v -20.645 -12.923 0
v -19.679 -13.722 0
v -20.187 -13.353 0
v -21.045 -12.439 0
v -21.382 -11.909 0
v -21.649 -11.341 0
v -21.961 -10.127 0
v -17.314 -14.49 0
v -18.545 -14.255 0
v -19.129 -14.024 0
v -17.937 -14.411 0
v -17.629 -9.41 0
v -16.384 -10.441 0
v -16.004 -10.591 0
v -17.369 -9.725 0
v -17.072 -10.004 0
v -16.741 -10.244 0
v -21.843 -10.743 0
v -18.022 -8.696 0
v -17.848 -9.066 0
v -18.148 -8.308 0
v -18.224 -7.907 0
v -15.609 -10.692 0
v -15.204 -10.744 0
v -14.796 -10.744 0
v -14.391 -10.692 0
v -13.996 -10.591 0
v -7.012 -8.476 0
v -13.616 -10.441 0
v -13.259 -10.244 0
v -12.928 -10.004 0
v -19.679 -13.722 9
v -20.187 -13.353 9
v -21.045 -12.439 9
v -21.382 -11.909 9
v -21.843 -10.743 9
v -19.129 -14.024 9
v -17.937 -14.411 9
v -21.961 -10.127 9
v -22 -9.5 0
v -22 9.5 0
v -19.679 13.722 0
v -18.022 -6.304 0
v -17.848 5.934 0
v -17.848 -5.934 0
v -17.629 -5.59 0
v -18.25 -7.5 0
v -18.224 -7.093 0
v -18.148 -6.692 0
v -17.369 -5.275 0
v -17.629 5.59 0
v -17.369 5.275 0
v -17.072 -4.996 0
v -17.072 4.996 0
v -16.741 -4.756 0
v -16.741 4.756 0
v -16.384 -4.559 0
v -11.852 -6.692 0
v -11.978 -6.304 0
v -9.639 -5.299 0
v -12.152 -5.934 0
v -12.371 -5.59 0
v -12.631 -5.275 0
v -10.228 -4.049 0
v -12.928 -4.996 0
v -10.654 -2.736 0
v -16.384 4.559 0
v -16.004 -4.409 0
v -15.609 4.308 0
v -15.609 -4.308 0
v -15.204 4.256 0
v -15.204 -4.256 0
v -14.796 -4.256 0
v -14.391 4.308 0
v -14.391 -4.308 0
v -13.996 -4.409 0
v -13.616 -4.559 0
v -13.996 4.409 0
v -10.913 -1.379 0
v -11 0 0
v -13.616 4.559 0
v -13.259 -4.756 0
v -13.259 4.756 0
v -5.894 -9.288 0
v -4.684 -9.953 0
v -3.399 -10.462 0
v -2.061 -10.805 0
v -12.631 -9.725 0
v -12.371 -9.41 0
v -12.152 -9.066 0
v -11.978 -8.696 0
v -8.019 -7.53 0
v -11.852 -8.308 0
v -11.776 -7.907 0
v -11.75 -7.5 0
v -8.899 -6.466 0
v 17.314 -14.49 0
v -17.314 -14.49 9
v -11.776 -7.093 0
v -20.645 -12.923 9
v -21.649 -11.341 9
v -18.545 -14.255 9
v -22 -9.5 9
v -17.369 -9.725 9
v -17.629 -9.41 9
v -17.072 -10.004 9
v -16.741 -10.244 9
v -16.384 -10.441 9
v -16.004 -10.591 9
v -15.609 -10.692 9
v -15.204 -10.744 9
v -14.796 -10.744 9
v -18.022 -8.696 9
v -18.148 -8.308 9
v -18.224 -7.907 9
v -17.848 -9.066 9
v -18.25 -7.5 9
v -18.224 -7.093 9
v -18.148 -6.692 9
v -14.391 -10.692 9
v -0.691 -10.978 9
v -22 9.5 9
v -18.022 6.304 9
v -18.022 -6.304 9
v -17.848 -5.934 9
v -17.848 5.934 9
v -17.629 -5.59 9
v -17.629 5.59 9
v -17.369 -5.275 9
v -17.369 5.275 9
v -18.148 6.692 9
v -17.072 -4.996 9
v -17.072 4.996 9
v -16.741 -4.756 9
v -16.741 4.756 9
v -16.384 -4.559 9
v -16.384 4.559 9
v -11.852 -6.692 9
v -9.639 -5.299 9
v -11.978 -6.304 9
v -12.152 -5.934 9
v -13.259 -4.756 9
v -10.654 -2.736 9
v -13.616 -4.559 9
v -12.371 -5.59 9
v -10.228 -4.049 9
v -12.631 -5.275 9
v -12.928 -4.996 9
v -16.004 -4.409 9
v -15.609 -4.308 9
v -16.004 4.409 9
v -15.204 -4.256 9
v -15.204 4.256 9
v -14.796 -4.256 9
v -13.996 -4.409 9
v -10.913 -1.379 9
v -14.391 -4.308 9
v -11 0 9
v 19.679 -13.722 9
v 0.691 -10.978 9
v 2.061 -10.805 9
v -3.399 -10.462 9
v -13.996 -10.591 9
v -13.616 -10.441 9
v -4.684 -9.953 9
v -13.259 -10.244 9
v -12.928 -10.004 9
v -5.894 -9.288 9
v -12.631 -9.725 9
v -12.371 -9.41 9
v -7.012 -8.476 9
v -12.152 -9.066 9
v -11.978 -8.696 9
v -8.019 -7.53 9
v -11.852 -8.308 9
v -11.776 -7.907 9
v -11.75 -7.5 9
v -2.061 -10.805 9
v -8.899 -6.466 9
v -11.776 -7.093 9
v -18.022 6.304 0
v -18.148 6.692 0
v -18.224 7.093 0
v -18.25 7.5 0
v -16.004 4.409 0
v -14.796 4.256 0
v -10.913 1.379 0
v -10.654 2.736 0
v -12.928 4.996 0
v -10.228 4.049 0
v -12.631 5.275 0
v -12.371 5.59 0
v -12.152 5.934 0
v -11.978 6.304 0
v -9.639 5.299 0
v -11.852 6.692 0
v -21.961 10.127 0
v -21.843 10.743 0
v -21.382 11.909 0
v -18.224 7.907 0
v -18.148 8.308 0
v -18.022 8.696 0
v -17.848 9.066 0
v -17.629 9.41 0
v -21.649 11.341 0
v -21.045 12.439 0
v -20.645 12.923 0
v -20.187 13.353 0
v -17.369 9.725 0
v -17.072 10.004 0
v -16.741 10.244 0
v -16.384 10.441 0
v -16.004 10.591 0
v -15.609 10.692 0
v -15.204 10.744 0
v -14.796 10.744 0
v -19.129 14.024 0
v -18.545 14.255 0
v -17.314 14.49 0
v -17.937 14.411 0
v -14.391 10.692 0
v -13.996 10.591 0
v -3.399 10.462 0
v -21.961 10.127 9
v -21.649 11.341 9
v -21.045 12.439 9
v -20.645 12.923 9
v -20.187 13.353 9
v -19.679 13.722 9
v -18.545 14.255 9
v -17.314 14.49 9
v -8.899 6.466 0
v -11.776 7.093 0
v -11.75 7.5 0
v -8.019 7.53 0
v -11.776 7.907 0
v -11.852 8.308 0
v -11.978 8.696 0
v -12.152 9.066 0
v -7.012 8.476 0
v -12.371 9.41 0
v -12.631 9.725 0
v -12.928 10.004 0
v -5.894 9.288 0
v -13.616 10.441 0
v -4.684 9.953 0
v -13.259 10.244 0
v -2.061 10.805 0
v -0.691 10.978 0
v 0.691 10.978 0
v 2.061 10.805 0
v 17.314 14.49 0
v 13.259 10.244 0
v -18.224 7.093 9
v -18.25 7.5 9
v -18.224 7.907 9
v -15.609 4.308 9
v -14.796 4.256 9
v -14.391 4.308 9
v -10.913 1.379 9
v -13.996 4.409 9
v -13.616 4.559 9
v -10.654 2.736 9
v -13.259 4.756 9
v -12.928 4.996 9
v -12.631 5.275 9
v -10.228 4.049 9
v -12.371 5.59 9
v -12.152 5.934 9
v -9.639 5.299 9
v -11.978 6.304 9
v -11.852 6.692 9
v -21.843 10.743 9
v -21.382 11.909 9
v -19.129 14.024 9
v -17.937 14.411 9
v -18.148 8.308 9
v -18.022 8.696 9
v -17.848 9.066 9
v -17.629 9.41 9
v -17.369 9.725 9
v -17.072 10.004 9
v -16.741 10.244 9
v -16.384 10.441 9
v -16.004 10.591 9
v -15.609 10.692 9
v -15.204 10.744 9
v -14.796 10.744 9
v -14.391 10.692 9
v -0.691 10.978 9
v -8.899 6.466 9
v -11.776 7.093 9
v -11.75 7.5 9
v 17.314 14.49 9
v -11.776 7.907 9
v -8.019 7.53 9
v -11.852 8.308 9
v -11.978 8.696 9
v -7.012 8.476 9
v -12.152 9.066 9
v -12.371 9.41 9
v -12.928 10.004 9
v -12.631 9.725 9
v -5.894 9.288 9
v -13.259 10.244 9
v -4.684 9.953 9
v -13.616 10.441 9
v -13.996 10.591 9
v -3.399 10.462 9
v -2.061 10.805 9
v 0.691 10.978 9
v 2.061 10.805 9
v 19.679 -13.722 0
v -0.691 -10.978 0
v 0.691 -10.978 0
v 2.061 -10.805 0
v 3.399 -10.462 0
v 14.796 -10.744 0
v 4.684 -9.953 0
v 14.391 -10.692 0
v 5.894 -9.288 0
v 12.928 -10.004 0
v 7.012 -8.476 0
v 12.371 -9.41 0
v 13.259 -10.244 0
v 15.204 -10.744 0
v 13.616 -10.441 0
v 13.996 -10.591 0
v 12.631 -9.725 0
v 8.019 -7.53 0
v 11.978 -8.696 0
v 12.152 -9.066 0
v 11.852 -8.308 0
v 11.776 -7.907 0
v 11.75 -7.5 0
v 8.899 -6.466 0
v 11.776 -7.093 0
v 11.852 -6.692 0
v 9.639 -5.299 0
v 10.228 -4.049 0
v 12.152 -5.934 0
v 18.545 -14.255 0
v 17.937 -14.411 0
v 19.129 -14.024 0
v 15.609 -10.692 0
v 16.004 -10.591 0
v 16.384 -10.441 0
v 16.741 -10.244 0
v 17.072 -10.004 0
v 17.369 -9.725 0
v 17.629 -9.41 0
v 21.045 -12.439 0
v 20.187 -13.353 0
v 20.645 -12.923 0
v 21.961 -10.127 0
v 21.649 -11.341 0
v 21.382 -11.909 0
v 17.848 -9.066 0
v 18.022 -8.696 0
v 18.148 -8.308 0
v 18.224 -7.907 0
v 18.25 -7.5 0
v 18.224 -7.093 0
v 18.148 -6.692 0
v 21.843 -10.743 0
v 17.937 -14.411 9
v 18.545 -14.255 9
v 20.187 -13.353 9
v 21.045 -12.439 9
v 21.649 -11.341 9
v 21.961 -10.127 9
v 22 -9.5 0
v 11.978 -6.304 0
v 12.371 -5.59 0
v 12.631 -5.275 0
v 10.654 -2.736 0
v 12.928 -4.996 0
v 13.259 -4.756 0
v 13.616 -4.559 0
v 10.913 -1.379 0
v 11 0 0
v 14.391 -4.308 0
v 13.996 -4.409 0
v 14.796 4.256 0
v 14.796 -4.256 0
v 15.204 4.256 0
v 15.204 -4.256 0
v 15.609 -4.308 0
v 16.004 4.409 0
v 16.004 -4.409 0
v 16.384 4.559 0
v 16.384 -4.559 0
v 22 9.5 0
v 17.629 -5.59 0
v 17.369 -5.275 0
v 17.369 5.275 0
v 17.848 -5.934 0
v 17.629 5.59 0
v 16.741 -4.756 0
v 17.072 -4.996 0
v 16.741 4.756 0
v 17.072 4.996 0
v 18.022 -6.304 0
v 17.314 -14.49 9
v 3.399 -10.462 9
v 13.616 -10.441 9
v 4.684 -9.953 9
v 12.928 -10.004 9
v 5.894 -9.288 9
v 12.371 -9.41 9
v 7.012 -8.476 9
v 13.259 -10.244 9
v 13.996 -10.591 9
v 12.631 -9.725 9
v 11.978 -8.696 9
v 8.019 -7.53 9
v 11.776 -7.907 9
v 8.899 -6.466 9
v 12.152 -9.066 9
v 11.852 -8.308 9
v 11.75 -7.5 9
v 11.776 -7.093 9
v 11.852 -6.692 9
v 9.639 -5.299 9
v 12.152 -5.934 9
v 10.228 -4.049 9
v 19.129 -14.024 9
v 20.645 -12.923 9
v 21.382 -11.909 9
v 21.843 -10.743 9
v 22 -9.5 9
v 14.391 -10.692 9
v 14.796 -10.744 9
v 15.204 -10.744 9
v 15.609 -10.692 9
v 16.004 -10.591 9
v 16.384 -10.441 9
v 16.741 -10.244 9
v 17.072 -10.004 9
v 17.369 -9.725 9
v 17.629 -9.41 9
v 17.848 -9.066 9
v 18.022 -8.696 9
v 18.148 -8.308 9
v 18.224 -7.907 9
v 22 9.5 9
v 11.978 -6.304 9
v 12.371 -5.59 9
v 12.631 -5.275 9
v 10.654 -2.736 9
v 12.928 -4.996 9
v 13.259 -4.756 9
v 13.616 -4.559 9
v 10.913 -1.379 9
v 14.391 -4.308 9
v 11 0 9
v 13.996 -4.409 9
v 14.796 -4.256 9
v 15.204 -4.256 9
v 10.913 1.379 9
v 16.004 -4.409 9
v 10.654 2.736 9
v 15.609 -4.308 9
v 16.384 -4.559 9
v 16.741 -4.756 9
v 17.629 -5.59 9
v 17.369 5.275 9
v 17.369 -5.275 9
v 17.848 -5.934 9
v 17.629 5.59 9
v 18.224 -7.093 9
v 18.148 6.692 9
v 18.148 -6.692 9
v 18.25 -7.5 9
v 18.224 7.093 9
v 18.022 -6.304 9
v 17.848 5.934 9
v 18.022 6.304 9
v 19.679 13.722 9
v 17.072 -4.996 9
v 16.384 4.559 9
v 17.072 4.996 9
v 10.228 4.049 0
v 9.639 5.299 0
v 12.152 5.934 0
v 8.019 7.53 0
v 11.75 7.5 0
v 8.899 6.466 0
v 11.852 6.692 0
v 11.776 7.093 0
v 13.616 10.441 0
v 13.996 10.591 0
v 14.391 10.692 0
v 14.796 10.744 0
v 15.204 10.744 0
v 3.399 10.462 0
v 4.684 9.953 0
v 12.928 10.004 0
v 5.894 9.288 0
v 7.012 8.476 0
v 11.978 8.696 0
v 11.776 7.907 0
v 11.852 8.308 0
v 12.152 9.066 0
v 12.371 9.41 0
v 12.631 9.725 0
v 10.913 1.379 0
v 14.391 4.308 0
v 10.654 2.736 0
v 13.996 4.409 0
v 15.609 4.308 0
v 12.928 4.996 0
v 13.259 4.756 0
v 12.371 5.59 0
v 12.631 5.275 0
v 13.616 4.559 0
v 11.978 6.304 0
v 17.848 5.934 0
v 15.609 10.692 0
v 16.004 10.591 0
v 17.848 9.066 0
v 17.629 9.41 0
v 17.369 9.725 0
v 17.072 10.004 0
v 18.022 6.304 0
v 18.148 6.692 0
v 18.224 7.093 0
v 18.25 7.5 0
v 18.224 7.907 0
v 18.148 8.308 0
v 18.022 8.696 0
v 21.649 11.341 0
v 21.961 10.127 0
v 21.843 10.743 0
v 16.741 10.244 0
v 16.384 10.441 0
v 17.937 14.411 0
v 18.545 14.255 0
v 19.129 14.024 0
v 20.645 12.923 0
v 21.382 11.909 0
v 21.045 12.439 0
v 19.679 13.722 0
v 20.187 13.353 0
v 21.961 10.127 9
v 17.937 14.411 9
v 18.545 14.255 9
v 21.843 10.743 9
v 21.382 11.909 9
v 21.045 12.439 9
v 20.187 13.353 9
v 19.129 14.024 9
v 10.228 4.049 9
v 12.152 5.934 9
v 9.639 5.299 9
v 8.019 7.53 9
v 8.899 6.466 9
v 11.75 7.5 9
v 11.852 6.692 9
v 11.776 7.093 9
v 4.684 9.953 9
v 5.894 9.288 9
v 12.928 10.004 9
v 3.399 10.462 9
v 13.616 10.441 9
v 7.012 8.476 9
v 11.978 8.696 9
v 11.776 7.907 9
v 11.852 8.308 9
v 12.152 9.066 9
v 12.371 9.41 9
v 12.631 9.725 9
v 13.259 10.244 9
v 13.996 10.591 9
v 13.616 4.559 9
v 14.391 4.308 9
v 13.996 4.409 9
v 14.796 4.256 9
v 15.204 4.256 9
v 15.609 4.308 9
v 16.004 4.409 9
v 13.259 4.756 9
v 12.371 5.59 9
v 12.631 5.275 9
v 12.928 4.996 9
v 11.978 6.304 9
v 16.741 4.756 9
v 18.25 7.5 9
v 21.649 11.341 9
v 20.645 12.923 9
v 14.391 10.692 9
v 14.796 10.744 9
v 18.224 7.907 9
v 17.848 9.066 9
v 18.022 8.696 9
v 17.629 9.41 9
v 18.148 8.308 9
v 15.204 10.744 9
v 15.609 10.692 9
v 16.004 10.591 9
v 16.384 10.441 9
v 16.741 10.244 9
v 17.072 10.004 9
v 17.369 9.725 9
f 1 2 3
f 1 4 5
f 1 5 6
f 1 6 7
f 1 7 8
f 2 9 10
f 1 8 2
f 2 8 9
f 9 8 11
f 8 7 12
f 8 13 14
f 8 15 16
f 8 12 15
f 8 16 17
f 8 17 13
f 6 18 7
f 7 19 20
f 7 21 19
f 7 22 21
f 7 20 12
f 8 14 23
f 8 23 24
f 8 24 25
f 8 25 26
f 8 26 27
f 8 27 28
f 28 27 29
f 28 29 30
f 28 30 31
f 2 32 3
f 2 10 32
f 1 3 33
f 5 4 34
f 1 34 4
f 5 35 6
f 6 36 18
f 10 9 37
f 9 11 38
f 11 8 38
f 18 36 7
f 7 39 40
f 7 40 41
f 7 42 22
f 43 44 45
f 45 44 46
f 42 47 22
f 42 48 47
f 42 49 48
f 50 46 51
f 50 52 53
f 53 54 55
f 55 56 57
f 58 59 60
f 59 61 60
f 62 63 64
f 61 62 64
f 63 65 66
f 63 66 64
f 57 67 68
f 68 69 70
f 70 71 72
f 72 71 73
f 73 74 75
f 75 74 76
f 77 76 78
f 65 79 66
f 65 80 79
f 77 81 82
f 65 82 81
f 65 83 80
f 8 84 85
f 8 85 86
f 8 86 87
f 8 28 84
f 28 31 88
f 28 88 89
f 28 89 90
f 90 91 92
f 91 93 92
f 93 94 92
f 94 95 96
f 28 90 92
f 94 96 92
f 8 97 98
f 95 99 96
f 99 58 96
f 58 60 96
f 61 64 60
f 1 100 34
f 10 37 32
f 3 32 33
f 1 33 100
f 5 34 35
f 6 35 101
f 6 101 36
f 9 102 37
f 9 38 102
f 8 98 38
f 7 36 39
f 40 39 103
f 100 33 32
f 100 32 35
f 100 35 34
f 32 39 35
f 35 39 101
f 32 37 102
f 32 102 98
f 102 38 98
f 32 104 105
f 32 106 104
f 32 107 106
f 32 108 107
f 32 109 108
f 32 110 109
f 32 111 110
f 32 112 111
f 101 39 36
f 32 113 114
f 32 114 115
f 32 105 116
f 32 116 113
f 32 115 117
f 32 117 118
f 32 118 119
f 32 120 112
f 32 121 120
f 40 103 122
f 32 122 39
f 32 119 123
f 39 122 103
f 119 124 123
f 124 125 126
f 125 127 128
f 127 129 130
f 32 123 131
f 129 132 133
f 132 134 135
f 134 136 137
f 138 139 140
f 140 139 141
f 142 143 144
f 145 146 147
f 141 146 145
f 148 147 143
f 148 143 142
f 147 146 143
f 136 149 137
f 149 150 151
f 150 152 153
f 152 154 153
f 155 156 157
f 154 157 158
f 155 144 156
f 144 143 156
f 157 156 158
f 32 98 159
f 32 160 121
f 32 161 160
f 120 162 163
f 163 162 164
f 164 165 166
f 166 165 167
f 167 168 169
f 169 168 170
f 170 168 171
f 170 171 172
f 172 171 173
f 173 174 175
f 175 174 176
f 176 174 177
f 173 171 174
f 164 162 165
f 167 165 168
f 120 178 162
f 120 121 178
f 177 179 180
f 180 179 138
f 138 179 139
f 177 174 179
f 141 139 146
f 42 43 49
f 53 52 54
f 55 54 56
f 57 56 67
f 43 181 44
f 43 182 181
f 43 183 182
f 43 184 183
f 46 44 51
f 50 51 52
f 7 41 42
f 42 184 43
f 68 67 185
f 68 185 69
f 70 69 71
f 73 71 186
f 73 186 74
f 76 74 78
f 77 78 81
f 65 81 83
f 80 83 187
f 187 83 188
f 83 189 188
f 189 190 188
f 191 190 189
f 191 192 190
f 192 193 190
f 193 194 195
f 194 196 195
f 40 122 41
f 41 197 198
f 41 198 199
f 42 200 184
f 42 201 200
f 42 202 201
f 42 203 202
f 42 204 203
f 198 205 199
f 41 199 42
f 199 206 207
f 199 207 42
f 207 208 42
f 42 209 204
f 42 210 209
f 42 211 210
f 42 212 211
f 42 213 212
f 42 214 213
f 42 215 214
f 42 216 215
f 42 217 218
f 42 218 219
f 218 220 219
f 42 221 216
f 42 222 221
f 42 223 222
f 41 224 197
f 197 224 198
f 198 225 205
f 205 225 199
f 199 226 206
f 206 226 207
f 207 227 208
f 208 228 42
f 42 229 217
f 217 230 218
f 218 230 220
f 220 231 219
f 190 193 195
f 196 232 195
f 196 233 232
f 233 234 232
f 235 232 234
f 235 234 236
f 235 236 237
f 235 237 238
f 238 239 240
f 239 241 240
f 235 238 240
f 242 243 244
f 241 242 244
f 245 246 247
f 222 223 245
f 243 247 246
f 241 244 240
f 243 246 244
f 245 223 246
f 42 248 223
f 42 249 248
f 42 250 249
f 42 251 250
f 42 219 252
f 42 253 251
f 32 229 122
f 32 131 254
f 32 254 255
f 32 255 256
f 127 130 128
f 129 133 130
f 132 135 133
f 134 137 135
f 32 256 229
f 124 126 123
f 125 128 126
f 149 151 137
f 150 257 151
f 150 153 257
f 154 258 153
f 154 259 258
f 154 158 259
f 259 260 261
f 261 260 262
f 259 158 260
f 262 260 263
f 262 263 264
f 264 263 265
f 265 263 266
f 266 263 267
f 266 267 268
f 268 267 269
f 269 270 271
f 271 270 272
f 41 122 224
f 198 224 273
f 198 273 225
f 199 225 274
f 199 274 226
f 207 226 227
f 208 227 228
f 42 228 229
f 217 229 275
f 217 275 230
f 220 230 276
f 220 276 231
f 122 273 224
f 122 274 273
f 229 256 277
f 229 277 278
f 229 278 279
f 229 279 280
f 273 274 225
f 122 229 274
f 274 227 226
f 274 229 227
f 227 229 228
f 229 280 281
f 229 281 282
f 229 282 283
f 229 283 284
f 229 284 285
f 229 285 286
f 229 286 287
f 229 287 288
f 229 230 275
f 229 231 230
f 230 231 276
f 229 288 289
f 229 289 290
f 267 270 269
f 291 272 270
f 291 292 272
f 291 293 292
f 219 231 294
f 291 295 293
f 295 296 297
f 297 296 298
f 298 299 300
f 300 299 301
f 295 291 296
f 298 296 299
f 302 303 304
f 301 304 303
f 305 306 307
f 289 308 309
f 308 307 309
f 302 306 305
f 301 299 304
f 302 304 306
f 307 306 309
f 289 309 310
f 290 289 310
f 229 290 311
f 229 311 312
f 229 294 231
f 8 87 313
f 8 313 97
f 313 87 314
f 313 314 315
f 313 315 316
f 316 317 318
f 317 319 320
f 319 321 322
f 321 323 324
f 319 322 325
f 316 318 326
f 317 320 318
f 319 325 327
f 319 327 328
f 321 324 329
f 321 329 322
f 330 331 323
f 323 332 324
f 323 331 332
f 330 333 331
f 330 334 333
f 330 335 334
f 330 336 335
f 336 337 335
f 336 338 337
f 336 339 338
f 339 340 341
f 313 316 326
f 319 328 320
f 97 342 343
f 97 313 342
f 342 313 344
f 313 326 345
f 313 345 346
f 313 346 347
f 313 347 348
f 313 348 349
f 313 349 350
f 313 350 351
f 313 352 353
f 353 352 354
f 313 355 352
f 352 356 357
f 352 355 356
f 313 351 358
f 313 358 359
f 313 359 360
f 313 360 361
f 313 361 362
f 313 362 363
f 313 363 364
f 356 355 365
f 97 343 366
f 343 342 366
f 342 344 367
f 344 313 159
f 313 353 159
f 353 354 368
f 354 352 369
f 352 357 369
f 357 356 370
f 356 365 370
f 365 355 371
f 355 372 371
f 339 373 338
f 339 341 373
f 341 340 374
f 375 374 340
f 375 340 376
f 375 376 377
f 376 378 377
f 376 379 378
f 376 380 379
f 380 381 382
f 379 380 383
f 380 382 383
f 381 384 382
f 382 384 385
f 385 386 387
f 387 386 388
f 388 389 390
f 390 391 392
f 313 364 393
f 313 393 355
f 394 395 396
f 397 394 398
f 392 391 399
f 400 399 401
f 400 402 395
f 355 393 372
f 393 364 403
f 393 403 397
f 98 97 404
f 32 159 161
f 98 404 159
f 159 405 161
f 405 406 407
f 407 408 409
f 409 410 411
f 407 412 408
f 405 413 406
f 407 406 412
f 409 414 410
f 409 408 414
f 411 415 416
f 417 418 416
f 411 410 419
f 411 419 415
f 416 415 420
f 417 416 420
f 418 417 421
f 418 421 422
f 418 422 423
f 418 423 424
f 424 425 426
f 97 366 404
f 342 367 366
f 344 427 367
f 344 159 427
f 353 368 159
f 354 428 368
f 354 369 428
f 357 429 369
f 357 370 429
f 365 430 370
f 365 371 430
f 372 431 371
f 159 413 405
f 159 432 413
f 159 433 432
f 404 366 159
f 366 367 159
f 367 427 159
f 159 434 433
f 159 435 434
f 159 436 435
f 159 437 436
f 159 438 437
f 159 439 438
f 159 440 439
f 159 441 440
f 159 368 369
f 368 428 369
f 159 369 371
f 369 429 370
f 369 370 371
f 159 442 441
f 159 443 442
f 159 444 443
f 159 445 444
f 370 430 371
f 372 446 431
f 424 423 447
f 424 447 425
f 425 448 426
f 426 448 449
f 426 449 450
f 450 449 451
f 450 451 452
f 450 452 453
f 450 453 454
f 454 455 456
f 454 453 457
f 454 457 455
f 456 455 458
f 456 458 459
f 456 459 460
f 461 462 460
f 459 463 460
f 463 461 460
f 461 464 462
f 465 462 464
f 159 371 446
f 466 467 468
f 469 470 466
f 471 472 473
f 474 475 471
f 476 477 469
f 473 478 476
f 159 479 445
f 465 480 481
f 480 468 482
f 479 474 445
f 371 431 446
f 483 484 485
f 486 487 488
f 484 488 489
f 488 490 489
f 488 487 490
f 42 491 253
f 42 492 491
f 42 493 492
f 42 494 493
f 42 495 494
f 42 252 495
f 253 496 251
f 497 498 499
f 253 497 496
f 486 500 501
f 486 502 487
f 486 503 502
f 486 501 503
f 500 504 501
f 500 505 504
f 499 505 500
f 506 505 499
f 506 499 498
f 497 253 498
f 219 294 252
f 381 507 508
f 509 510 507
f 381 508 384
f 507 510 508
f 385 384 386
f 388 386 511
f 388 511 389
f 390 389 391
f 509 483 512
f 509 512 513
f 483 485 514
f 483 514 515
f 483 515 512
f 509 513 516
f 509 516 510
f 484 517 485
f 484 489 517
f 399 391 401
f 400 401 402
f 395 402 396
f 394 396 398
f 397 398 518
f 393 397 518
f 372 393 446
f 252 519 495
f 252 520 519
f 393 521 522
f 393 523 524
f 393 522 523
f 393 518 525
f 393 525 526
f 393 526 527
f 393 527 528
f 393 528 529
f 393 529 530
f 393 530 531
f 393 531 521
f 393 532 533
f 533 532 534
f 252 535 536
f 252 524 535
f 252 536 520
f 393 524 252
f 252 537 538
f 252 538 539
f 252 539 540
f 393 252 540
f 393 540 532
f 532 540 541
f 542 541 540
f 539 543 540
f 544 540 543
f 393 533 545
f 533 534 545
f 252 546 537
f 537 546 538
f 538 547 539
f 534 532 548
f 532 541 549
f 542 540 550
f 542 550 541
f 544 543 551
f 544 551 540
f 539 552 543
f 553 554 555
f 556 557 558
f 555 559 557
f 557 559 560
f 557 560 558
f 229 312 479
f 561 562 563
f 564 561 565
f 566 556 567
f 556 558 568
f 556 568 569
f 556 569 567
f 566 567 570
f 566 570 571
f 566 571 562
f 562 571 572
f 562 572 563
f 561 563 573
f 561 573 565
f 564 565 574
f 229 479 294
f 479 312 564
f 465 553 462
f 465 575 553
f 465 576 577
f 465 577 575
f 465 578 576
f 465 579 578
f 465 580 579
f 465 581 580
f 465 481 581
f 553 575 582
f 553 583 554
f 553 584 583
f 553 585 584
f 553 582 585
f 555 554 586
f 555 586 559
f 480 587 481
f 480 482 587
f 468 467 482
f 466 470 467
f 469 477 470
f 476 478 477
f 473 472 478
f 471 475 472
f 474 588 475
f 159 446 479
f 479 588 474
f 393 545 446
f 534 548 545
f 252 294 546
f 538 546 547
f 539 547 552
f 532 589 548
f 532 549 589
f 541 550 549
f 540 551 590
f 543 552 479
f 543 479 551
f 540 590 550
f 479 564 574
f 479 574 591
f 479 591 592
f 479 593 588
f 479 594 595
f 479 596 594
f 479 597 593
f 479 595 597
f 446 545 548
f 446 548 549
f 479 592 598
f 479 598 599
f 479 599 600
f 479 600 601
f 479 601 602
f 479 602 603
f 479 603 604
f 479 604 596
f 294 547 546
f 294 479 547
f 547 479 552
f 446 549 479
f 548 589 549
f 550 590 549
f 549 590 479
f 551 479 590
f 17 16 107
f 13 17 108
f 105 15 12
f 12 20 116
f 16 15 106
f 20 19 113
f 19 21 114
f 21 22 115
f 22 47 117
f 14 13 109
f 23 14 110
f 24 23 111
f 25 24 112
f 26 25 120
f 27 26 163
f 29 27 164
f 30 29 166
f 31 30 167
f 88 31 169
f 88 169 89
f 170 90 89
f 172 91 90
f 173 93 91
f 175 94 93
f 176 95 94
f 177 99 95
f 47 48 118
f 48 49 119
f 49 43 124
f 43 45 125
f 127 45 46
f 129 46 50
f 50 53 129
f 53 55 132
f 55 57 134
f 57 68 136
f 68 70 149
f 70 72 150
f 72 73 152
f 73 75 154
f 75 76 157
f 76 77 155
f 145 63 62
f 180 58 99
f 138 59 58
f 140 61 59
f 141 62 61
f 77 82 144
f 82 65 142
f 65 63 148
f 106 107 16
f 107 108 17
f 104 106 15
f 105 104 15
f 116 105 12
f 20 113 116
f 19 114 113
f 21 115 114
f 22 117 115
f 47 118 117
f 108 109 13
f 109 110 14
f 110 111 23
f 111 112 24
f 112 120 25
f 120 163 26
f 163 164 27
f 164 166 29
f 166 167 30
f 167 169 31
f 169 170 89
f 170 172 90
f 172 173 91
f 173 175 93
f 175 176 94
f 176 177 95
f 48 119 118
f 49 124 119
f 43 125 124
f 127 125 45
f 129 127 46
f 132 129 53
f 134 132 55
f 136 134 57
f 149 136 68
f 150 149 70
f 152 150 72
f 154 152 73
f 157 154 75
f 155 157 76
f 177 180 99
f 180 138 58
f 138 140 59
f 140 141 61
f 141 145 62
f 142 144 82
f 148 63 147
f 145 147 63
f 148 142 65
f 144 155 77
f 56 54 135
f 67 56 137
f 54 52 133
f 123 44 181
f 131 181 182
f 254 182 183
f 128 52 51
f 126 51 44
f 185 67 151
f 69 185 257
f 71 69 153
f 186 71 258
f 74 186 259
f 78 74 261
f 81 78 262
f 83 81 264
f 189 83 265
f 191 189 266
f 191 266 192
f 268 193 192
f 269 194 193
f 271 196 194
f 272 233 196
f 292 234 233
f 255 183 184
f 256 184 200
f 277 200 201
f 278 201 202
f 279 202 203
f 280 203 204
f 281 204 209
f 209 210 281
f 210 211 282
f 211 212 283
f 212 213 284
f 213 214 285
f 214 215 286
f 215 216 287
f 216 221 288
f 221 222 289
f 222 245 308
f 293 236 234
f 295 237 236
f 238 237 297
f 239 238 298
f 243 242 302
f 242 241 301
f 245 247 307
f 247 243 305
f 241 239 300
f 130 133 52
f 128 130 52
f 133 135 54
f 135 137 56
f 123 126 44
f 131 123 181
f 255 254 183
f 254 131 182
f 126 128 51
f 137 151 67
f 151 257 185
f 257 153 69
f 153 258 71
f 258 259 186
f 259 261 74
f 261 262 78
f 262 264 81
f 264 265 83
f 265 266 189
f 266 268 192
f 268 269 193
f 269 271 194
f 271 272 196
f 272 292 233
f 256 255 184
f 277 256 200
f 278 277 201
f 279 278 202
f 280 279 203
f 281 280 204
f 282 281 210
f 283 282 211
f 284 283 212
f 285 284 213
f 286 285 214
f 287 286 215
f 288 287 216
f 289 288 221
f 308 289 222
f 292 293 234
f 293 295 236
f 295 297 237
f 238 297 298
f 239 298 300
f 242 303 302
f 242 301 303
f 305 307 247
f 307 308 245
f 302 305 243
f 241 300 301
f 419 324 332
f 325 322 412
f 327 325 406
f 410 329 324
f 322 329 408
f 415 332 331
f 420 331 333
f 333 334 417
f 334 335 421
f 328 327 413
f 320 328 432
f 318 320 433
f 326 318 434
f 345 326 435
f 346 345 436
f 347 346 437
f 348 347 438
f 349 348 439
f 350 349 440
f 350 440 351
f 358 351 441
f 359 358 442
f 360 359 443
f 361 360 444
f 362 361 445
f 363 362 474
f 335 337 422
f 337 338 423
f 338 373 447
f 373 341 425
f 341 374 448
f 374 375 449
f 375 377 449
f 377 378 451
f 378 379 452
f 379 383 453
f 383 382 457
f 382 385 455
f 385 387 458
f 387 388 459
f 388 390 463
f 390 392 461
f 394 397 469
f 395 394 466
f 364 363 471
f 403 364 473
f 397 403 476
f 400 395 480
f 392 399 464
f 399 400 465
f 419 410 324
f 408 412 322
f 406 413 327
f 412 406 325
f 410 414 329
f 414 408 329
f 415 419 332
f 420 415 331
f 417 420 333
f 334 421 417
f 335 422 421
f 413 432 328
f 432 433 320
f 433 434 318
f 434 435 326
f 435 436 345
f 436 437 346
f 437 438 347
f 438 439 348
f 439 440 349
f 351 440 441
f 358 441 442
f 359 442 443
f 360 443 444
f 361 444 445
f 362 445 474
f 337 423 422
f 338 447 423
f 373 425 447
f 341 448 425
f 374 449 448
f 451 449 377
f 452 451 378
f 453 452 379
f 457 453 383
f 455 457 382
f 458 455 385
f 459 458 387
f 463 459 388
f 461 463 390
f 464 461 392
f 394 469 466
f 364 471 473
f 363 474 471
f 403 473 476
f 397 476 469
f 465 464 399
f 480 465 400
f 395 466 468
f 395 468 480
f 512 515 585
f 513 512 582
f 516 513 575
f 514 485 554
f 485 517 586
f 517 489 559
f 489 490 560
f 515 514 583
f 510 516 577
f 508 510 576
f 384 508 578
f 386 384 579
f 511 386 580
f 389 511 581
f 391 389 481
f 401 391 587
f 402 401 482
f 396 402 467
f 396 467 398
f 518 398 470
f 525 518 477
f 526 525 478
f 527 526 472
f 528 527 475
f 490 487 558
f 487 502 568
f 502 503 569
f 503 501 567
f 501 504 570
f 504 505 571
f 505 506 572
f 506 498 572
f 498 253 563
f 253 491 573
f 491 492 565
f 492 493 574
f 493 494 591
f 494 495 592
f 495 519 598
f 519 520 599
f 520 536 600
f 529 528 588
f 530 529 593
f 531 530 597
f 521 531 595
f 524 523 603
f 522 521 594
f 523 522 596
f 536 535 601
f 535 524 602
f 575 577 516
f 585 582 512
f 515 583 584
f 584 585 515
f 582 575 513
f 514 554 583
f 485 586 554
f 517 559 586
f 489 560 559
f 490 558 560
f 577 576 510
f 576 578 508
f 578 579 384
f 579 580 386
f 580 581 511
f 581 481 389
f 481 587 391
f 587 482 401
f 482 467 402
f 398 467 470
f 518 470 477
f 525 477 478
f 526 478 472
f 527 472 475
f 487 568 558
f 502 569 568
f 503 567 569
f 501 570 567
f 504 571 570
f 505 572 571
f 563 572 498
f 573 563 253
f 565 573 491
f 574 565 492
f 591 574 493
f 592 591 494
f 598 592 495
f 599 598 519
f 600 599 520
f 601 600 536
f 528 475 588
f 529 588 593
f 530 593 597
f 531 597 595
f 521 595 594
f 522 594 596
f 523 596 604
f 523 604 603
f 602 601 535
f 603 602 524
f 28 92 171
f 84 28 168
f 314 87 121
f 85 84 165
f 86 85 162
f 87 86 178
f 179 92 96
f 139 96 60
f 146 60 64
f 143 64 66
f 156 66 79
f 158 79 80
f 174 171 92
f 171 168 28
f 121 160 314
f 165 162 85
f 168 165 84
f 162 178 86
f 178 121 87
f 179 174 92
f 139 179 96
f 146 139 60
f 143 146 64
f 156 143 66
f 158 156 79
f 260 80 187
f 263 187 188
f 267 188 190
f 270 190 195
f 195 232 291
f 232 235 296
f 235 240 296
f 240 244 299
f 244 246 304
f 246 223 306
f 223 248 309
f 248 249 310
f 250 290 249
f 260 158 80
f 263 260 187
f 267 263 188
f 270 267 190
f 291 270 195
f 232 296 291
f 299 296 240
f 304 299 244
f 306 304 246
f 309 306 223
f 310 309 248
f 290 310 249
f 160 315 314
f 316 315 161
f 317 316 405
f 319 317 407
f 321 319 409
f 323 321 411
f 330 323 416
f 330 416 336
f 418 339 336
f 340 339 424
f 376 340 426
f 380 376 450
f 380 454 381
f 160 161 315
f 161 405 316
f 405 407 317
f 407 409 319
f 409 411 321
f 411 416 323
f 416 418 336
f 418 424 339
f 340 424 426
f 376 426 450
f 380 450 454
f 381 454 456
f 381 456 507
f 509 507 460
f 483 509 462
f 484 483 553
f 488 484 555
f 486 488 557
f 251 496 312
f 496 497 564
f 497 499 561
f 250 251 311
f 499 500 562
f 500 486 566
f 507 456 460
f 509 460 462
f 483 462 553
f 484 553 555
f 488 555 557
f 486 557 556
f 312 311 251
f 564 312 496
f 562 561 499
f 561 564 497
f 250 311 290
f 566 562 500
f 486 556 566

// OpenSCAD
$fn = 50;

difference() {
	union() {
		hull() {
			translate(v = [-17.0, 9.5, 0]) {
				cylinder(h = 9, r = 5);
			}
			translate(v = [17.0, 9.5, 0]) {
				cylinder(h = 9, r = 5);
			}
			translate(v = [-17.0, -9.5, 0]) {
				cylinder(h = 9, r = 5);
			}
			translate(v = [17.0, -9.5, 0]) {
				cylinder(h = 9, r = 5);
			}
		}
	}
	union() {
		translate(v = [-15.0, -7.5, 0]) {
			cylinder(h = 9, r = 3.25);
		}
		translate(v = [-15.0, 7.5, 0]) {
			cylinder(h = 9, r = 3.25);
		}
		translate(v = [15.0, -7.5, 0]) {
			cylinder(h = 9, r = 3.25);
		}
		translate(v = [15.0, 7.5, 0]) {
			cylinder(h = 9, r = 3.25);
		}
		cylinder(h = 9, r = 11.0);
	}
}
